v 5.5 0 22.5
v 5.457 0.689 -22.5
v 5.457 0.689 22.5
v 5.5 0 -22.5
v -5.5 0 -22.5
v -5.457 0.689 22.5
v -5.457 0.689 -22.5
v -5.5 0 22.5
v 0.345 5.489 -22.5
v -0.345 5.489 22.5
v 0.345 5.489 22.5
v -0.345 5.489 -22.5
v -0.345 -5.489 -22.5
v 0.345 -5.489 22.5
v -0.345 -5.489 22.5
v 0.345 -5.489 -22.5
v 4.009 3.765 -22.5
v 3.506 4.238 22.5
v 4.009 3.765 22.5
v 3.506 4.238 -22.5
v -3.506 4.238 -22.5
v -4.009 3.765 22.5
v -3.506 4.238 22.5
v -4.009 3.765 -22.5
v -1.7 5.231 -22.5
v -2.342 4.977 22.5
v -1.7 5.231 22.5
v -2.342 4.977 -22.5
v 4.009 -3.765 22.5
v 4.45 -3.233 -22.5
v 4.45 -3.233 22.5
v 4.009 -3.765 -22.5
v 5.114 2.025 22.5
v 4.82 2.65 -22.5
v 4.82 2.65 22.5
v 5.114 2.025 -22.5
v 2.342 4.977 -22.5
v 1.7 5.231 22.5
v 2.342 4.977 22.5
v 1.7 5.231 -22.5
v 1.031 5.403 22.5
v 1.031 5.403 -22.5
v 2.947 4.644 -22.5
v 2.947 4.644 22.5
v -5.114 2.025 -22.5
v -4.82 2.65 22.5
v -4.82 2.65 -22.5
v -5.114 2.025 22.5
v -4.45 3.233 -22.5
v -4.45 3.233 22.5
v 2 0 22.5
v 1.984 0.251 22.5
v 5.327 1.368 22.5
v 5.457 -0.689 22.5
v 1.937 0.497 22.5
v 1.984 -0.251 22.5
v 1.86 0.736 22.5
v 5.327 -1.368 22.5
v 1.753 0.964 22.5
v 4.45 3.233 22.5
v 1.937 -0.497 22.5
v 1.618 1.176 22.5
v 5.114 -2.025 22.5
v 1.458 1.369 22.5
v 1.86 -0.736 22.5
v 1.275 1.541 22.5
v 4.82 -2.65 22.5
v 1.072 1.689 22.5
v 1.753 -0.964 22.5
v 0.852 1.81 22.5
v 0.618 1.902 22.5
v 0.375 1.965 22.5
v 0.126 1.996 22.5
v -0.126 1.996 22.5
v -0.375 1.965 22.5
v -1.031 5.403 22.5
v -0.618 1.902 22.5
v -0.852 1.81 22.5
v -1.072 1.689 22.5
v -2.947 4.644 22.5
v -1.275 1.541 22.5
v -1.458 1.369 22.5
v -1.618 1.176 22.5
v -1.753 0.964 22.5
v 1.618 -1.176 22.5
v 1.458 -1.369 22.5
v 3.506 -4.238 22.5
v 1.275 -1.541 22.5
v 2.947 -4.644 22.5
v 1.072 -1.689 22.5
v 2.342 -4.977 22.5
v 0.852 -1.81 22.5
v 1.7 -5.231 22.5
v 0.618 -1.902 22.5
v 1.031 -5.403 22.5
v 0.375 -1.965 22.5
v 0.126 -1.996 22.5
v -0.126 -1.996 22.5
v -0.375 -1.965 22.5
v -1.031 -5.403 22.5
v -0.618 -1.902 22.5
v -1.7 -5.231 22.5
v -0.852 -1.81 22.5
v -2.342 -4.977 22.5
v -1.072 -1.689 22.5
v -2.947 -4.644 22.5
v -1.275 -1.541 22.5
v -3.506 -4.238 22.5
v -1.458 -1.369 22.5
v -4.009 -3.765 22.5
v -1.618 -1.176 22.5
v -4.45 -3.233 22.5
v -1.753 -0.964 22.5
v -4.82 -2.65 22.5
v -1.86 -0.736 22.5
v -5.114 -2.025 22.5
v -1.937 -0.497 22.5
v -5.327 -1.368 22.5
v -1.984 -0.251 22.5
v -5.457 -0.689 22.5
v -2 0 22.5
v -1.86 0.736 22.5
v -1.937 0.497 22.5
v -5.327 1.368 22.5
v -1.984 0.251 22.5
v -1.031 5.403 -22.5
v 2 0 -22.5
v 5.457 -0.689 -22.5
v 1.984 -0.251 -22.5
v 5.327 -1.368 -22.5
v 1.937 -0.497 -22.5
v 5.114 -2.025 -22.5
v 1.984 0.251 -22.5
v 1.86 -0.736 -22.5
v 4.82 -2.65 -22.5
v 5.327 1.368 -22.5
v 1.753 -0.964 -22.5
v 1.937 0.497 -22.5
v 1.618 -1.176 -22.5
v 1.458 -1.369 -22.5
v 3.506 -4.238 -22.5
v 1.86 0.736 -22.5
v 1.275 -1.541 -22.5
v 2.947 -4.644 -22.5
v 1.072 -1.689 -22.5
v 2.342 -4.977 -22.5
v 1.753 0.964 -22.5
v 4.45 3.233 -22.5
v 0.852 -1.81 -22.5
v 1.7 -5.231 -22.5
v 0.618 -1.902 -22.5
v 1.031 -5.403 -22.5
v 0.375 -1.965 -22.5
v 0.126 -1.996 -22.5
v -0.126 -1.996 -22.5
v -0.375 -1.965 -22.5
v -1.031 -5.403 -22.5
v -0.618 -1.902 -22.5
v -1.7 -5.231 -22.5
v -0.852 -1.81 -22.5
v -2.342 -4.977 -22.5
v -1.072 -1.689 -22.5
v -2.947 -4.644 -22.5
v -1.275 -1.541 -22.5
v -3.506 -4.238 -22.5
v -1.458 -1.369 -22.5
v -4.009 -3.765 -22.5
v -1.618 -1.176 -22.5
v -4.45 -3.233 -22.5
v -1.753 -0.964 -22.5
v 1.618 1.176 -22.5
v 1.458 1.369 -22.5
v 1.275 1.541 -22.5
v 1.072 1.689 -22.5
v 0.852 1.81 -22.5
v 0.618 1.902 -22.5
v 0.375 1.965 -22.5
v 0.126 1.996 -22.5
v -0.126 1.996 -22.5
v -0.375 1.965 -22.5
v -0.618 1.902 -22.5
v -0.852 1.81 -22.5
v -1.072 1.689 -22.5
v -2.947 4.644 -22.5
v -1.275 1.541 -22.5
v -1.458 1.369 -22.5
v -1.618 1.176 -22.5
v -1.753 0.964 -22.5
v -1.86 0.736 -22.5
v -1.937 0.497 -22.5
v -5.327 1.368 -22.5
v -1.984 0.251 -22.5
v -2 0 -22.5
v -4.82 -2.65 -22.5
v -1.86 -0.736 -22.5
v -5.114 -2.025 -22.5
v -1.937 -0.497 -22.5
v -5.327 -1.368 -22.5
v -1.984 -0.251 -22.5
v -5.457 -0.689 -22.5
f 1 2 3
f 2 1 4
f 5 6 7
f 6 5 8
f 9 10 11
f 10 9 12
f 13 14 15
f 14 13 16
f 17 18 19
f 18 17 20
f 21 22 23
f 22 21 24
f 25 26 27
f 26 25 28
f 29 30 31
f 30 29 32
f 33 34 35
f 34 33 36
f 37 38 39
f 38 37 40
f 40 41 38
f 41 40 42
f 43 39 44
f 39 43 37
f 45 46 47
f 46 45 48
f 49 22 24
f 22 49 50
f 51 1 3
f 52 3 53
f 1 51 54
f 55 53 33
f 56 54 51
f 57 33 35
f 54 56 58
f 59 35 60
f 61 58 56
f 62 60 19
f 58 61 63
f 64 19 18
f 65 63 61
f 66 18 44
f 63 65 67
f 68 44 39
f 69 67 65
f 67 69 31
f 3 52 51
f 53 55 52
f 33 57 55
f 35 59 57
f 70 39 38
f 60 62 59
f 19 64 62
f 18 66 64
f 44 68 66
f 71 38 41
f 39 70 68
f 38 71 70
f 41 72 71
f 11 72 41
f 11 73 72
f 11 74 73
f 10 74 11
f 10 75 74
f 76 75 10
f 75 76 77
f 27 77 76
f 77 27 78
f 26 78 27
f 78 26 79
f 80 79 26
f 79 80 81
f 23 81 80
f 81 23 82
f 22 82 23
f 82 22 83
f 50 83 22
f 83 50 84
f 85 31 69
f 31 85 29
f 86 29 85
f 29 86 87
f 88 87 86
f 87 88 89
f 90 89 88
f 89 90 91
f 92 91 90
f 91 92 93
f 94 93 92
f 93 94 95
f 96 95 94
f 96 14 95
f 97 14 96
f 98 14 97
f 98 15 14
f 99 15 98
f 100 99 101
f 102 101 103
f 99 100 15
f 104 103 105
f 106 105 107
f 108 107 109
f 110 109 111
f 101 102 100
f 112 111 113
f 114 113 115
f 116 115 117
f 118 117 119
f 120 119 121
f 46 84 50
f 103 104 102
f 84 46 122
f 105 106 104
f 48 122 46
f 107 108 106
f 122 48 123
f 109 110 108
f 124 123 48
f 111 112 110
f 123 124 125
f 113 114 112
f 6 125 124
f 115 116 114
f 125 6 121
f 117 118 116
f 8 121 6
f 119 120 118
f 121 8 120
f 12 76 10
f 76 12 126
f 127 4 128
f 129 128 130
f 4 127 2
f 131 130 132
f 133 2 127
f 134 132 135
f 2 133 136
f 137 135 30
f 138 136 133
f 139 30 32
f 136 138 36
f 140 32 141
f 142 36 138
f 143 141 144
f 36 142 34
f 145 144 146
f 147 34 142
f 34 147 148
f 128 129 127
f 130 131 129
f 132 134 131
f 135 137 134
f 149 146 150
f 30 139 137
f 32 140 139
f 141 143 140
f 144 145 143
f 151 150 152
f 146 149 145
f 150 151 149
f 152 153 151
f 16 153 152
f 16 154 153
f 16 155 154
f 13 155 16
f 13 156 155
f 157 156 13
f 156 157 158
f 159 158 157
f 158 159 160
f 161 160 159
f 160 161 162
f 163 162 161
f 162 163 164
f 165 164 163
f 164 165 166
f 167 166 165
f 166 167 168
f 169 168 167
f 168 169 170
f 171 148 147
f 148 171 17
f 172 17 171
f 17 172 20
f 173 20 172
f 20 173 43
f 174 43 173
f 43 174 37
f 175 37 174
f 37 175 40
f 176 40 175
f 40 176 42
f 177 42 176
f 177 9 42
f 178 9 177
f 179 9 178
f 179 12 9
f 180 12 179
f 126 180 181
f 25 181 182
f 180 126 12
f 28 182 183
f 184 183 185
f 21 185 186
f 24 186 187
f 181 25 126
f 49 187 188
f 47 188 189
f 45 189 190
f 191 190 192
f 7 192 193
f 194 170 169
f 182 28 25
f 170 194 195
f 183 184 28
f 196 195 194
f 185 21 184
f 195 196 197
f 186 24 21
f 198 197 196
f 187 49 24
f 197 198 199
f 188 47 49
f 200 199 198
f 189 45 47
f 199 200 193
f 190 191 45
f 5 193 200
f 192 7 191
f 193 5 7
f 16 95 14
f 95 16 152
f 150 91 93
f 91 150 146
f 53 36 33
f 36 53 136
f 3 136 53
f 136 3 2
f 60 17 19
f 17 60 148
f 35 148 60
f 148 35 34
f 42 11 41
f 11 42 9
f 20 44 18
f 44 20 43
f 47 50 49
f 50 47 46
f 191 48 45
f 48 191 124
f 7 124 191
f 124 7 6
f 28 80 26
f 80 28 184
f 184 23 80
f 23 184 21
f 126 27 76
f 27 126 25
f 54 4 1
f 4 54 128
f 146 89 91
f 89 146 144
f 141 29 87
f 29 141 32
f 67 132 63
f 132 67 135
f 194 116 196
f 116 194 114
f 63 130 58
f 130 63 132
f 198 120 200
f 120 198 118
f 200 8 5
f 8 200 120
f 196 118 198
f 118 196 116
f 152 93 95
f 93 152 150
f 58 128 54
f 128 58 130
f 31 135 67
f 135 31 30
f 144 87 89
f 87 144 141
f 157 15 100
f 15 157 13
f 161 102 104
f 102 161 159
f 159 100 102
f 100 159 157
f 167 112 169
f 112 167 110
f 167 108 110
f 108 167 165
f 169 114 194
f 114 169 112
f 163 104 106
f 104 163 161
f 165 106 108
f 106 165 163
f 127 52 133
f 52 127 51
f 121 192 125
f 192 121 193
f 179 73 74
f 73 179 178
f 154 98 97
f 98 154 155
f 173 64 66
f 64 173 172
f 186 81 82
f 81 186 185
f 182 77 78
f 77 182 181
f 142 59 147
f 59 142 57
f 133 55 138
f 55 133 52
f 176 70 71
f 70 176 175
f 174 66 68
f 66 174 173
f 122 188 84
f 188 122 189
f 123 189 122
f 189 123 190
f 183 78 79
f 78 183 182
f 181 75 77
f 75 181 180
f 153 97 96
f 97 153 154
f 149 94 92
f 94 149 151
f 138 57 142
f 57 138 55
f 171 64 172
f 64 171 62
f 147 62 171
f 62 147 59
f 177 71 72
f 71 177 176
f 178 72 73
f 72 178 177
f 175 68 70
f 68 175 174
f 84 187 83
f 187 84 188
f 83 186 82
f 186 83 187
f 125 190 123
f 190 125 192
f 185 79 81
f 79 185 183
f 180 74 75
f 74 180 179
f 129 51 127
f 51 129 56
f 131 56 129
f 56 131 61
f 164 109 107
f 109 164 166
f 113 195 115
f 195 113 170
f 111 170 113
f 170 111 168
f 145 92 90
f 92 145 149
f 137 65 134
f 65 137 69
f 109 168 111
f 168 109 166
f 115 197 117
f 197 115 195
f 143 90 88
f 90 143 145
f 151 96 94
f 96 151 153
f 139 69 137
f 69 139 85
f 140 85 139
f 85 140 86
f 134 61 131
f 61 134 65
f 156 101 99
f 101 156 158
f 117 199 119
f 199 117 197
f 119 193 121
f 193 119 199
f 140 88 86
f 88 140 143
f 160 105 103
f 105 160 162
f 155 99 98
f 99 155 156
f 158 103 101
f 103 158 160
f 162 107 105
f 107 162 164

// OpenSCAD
$fn = 50;


difference() {
	union() {
		translate(v = [0, 0, -22.5000000000]) {
			cylinder(h = 45, r = 5.5000000000);
		}
	}
	union() {
		translate(v = [0, 0, -100.0000000000]) {
			cylinder(h = 200, r = 2);
		}
	}
}
